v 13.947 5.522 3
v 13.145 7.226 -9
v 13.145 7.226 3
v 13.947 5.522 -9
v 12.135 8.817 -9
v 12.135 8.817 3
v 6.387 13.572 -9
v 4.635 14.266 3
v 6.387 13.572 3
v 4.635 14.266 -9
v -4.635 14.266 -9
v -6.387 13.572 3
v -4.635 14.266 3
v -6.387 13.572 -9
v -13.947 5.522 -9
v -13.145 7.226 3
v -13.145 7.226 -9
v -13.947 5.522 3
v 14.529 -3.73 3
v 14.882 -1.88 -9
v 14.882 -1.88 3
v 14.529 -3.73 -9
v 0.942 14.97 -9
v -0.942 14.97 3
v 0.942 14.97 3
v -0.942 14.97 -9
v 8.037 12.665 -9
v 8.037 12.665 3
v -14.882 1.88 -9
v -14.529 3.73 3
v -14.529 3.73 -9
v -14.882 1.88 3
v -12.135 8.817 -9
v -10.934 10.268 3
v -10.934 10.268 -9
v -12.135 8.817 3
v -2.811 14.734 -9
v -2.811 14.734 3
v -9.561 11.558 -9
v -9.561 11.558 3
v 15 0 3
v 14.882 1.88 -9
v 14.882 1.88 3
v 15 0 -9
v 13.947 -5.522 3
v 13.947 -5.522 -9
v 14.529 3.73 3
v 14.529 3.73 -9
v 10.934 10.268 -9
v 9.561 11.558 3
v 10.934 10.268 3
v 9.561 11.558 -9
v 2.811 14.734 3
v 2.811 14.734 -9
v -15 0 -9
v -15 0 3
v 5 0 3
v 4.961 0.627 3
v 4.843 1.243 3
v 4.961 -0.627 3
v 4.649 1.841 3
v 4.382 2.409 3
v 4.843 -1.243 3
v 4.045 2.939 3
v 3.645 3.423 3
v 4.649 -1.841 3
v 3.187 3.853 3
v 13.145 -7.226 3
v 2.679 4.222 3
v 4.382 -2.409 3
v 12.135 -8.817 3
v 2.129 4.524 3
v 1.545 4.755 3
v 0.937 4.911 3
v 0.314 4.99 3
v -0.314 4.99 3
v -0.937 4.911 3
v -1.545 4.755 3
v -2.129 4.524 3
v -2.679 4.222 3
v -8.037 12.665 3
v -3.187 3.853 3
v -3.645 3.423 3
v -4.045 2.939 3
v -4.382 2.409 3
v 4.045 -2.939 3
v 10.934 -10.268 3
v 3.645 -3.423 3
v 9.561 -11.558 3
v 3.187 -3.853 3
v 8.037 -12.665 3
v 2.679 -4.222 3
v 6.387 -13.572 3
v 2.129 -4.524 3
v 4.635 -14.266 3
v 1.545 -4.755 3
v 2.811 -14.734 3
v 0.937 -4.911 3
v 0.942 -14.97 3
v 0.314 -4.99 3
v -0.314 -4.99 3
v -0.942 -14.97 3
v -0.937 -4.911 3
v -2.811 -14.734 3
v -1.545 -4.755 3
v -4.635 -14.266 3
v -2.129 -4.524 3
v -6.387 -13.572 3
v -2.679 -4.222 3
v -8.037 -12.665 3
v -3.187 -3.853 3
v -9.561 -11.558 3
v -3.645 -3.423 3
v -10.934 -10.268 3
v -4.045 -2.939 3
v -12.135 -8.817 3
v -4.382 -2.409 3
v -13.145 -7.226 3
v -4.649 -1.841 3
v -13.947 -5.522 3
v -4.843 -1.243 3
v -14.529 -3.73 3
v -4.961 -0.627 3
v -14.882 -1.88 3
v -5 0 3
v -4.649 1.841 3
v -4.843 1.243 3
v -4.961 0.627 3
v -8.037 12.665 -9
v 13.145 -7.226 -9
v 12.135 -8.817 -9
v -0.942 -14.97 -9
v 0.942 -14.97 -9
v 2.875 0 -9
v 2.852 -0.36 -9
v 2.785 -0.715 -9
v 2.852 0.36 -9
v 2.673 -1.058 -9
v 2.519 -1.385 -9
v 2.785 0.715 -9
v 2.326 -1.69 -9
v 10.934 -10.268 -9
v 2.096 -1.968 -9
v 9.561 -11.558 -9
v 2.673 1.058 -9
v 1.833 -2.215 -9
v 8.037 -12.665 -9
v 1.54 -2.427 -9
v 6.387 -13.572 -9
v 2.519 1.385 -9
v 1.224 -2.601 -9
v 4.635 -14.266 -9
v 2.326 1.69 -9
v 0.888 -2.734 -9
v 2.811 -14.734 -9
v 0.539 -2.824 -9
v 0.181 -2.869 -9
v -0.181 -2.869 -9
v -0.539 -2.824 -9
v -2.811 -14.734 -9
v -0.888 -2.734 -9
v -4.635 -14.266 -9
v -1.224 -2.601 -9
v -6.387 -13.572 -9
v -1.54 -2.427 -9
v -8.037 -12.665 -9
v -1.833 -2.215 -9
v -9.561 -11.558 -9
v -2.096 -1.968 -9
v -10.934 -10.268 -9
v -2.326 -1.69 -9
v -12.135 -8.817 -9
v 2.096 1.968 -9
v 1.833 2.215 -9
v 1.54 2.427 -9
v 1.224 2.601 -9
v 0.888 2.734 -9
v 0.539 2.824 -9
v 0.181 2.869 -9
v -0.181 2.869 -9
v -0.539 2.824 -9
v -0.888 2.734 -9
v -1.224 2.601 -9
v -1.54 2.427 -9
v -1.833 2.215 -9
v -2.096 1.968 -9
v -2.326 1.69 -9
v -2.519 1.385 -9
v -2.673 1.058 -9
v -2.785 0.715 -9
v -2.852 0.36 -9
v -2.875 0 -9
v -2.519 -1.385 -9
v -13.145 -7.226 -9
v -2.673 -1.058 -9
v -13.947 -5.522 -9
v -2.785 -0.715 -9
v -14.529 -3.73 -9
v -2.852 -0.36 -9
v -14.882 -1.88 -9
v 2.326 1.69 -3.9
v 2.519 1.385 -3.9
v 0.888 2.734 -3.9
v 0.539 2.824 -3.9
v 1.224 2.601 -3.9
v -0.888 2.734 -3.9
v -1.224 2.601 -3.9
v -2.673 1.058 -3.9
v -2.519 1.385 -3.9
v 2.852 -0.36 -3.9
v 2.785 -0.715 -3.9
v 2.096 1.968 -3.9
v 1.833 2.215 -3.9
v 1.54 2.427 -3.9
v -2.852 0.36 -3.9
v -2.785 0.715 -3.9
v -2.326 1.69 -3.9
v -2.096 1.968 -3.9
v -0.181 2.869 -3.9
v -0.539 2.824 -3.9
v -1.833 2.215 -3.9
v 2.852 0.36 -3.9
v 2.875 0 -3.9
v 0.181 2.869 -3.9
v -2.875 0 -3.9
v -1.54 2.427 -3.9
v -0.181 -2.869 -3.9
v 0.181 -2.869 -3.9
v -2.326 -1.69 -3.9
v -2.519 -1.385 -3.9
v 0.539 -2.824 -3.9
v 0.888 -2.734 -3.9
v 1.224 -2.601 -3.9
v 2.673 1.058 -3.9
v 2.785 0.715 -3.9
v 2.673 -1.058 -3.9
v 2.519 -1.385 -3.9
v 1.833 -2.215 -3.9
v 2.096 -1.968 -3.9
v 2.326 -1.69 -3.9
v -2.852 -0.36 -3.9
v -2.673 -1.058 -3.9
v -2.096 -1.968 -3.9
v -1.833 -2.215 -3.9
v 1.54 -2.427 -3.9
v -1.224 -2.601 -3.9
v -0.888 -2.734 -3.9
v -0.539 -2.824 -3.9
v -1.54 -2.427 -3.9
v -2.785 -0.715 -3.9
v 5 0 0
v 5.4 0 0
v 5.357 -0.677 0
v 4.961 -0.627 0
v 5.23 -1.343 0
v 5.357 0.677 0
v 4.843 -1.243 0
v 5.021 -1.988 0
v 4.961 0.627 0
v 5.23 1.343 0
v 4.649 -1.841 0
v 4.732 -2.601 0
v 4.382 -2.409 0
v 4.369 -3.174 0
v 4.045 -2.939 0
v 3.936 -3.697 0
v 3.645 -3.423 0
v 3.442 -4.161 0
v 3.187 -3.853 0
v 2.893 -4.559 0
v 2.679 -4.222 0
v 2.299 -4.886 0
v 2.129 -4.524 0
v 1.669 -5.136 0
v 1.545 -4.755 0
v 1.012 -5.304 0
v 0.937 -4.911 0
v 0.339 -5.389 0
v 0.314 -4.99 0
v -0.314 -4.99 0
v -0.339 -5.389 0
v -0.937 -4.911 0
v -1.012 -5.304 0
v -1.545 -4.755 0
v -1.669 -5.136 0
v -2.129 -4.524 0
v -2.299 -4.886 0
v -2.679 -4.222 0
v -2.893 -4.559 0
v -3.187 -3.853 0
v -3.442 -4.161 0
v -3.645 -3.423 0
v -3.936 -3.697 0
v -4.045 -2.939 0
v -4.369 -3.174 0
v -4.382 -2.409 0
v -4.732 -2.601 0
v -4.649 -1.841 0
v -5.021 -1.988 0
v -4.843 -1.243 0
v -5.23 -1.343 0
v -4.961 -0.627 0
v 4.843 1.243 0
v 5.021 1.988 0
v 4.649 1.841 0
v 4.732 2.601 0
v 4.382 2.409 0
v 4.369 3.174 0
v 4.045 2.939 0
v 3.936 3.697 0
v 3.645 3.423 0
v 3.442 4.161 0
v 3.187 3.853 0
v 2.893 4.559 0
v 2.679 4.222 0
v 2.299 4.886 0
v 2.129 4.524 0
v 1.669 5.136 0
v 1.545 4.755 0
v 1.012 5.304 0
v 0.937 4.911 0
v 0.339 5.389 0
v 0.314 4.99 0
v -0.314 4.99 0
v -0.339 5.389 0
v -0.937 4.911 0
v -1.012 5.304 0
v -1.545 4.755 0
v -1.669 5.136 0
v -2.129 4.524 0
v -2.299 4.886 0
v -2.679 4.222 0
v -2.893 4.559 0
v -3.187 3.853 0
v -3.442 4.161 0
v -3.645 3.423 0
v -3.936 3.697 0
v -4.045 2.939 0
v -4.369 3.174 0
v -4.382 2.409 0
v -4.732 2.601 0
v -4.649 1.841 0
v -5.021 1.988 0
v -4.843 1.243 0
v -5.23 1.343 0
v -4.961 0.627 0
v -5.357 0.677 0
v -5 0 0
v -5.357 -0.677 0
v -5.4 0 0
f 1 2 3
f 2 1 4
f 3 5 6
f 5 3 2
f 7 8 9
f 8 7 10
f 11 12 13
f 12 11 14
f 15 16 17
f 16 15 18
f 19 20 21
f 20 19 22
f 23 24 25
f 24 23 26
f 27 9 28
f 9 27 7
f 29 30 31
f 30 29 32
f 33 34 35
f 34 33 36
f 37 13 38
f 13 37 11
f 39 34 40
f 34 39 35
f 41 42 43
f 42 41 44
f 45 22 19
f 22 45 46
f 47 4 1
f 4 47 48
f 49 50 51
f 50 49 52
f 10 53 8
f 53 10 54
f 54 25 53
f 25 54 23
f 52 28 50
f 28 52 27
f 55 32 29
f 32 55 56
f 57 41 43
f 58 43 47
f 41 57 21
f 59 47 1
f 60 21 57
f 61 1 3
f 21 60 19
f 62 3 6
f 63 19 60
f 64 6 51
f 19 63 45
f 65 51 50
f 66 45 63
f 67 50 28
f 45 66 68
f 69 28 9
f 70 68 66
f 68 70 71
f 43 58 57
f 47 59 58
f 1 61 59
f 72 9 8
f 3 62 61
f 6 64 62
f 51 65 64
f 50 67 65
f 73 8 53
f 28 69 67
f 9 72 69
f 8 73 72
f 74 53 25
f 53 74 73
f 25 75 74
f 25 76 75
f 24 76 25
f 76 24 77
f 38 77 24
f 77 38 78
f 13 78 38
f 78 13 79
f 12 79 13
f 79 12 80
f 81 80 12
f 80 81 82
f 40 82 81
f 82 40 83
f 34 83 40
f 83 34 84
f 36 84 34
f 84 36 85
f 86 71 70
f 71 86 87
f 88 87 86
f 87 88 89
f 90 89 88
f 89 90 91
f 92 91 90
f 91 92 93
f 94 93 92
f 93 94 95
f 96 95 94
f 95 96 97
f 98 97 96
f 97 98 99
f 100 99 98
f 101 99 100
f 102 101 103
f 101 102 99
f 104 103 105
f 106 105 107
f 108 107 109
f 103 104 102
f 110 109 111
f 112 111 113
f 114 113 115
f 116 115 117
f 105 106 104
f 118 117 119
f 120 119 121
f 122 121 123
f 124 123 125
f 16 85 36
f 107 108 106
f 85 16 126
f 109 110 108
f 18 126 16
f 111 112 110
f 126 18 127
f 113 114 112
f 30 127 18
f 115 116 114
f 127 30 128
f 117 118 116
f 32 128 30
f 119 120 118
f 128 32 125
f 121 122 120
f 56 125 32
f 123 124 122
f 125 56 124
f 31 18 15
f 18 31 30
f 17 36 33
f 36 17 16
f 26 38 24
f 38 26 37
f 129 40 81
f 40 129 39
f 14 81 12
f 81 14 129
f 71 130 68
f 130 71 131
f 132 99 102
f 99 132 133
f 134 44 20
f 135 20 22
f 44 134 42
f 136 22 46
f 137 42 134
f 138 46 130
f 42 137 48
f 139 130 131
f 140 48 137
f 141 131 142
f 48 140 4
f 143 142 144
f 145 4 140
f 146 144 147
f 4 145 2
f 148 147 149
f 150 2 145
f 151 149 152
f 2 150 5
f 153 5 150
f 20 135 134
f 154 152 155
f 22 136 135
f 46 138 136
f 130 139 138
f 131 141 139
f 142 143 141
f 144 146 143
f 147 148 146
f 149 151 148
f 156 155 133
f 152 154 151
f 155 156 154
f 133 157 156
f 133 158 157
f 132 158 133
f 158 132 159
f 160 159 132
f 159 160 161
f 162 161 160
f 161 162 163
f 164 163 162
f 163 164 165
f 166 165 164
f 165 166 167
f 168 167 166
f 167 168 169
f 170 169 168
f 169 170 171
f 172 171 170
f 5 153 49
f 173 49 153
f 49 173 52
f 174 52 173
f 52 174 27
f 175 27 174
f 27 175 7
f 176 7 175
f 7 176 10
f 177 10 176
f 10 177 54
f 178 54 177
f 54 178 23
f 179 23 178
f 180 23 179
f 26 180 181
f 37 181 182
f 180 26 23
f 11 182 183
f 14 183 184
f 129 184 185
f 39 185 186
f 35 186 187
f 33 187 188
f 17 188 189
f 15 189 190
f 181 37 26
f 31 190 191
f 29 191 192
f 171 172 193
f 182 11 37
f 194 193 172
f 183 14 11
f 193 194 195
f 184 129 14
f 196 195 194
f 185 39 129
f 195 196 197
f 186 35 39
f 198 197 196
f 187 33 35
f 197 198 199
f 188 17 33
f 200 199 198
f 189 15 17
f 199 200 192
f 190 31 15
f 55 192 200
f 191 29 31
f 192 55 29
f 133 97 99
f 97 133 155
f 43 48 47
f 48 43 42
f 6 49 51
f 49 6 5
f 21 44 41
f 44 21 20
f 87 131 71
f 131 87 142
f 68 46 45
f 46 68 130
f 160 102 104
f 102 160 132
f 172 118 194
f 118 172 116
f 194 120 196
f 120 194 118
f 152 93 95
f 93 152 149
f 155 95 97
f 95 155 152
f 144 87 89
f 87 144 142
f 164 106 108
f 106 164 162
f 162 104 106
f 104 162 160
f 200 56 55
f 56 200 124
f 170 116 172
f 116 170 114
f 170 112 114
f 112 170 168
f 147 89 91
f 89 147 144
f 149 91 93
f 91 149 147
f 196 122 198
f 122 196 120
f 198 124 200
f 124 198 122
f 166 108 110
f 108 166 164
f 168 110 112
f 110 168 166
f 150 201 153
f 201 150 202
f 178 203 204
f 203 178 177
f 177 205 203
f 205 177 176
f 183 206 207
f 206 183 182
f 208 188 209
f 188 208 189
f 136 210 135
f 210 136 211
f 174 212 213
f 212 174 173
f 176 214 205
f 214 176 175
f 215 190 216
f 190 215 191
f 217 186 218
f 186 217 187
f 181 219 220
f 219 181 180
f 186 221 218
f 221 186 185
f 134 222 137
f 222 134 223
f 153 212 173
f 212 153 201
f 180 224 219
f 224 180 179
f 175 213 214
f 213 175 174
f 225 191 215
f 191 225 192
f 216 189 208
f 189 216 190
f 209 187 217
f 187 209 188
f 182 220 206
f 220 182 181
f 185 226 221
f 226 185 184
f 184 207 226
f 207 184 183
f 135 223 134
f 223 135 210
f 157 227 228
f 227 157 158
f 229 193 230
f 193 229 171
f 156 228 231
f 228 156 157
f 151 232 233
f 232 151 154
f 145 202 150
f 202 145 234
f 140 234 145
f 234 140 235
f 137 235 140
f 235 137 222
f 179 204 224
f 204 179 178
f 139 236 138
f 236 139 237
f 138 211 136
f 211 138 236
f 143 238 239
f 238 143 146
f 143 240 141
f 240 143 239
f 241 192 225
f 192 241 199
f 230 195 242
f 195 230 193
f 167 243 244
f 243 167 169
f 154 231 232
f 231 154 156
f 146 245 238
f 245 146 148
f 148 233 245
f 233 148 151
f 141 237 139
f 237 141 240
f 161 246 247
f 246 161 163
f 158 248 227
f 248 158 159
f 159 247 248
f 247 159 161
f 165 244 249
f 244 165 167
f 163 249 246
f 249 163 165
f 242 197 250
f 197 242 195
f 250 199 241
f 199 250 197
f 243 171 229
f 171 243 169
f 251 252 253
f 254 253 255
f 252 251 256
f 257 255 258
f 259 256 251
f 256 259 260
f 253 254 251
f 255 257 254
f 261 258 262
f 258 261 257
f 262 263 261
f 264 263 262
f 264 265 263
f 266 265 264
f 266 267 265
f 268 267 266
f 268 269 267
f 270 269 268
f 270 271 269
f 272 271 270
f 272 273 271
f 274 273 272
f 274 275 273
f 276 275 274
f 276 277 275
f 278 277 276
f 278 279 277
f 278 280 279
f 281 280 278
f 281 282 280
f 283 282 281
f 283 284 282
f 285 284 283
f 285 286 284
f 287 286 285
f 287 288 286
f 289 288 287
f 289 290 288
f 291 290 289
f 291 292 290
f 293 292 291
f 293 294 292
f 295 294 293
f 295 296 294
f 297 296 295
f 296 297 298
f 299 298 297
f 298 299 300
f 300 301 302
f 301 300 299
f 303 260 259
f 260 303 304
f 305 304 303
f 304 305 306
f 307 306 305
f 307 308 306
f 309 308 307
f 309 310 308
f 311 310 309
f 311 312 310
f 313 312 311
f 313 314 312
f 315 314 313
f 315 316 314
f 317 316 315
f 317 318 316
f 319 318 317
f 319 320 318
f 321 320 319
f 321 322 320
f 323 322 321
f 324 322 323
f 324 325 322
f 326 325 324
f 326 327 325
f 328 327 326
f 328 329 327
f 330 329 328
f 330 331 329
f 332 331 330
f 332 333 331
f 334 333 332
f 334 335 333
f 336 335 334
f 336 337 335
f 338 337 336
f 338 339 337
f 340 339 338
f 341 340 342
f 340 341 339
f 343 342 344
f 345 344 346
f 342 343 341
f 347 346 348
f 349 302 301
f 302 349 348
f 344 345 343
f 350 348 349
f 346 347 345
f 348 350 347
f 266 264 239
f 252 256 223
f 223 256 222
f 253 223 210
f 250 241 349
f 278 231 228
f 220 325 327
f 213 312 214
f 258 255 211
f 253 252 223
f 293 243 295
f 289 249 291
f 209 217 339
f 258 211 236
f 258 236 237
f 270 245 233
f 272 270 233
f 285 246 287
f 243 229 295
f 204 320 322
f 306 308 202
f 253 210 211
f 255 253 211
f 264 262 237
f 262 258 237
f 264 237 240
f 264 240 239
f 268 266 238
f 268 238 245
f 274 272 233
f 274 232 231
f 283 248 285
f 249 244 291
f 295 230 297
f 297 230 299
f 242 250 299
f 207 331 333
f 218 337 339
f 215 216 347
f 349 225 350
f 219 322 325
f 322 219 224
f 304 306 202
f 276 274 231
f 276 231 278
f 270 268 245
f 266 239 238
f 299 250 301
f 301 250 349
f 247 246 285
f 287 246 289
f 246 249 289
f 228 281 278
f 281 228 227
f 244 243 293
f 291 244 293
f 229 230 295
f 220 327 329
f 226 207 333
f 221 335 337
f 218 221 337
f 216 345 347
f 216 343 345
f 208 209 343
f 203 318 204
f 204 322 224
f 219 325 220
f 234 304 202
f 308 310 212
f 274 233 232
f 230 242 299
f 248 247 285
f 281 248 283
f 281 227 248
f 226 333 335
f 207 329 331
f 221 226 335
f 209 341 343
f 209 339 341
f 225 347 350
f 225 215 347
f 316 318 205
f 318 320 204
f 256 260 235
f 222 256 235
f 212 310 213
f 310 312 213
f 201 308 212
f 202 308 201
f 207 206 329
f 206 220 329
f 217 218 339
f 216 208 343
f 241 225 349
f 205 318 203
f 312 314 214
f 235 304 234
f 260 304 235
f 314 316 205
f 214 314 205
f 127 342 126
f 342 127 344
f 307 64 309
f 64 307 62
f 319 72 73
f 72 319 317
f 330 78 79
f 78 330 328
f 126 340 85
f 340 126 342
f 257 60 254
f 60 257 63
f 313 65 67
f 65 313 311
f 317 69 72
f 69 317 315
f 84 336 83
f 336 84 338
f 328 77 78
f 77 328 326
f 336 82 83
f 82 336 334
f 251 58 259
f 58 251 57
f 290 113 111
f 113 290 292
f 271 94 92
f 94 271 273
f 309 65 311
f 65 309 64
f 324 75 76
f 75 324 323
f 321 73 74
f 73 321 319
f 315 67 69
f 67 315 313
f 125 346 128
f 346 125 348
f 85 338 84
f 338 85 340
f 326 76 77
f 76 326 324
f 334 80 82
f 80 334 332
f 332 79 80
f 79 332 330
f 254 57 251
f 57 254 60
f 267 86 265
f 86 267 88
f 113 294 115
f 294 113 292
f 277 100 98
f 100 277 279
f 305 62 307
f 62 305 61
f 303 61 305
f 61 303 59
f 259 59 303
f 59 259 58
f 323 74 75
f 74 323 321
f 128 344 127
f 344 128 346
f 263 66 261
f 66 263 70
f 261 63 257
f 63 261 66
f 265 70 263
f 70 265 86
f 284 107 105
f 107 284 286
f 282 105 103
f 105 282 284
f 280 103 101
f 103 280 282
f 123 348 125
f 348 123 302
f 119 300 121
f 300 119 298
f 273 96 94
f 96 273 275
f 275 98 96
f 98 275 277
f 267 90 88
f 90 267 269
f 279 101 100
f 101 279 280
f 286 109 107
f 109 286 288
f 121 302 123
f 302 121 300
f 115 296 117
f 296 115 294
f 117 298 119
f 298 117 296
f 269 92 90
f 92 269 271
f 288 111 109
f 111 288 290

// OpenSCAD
$fn = 50;


difference() {
	union() {
		translate(v = [0, 0, -9.0000000000]) {
			cylinder(h = 12, r = 15.0000000000);
		}
		#translate(v = [0, 0, -12.0000000000]) {
			cylinder(h = 12, r = 2.8750000000);
		}
	}
	union() {
		translate(v = [0, 0, 0]) {
			rotate(a = [0, 0, 0]) {
				difference() {
					union() {
						translate(v = [0, 0, -12.0000000000]) {
							cylinder(h = 12, r = 2.6000000000);
						}
						translate(v = [0, 0, -3.9000000000]) {
							cylinder(h = 3.9000000000, r1 = 2.8750000000, r2 = 5.4000000000);
						}
						translate(v = [0, 0, -12.0000000000]) {
							cylinder(h = 12, r = 2.8750000000);
						}
						translate(v = [0, 0, -12.0000000000]) {
							cylinder(h = 12, r = 2.6000000000);
						}
					}
					union();
				}
			}
		}
		#cylinder(h = 3, r = 5.0000000000);
	}
}
